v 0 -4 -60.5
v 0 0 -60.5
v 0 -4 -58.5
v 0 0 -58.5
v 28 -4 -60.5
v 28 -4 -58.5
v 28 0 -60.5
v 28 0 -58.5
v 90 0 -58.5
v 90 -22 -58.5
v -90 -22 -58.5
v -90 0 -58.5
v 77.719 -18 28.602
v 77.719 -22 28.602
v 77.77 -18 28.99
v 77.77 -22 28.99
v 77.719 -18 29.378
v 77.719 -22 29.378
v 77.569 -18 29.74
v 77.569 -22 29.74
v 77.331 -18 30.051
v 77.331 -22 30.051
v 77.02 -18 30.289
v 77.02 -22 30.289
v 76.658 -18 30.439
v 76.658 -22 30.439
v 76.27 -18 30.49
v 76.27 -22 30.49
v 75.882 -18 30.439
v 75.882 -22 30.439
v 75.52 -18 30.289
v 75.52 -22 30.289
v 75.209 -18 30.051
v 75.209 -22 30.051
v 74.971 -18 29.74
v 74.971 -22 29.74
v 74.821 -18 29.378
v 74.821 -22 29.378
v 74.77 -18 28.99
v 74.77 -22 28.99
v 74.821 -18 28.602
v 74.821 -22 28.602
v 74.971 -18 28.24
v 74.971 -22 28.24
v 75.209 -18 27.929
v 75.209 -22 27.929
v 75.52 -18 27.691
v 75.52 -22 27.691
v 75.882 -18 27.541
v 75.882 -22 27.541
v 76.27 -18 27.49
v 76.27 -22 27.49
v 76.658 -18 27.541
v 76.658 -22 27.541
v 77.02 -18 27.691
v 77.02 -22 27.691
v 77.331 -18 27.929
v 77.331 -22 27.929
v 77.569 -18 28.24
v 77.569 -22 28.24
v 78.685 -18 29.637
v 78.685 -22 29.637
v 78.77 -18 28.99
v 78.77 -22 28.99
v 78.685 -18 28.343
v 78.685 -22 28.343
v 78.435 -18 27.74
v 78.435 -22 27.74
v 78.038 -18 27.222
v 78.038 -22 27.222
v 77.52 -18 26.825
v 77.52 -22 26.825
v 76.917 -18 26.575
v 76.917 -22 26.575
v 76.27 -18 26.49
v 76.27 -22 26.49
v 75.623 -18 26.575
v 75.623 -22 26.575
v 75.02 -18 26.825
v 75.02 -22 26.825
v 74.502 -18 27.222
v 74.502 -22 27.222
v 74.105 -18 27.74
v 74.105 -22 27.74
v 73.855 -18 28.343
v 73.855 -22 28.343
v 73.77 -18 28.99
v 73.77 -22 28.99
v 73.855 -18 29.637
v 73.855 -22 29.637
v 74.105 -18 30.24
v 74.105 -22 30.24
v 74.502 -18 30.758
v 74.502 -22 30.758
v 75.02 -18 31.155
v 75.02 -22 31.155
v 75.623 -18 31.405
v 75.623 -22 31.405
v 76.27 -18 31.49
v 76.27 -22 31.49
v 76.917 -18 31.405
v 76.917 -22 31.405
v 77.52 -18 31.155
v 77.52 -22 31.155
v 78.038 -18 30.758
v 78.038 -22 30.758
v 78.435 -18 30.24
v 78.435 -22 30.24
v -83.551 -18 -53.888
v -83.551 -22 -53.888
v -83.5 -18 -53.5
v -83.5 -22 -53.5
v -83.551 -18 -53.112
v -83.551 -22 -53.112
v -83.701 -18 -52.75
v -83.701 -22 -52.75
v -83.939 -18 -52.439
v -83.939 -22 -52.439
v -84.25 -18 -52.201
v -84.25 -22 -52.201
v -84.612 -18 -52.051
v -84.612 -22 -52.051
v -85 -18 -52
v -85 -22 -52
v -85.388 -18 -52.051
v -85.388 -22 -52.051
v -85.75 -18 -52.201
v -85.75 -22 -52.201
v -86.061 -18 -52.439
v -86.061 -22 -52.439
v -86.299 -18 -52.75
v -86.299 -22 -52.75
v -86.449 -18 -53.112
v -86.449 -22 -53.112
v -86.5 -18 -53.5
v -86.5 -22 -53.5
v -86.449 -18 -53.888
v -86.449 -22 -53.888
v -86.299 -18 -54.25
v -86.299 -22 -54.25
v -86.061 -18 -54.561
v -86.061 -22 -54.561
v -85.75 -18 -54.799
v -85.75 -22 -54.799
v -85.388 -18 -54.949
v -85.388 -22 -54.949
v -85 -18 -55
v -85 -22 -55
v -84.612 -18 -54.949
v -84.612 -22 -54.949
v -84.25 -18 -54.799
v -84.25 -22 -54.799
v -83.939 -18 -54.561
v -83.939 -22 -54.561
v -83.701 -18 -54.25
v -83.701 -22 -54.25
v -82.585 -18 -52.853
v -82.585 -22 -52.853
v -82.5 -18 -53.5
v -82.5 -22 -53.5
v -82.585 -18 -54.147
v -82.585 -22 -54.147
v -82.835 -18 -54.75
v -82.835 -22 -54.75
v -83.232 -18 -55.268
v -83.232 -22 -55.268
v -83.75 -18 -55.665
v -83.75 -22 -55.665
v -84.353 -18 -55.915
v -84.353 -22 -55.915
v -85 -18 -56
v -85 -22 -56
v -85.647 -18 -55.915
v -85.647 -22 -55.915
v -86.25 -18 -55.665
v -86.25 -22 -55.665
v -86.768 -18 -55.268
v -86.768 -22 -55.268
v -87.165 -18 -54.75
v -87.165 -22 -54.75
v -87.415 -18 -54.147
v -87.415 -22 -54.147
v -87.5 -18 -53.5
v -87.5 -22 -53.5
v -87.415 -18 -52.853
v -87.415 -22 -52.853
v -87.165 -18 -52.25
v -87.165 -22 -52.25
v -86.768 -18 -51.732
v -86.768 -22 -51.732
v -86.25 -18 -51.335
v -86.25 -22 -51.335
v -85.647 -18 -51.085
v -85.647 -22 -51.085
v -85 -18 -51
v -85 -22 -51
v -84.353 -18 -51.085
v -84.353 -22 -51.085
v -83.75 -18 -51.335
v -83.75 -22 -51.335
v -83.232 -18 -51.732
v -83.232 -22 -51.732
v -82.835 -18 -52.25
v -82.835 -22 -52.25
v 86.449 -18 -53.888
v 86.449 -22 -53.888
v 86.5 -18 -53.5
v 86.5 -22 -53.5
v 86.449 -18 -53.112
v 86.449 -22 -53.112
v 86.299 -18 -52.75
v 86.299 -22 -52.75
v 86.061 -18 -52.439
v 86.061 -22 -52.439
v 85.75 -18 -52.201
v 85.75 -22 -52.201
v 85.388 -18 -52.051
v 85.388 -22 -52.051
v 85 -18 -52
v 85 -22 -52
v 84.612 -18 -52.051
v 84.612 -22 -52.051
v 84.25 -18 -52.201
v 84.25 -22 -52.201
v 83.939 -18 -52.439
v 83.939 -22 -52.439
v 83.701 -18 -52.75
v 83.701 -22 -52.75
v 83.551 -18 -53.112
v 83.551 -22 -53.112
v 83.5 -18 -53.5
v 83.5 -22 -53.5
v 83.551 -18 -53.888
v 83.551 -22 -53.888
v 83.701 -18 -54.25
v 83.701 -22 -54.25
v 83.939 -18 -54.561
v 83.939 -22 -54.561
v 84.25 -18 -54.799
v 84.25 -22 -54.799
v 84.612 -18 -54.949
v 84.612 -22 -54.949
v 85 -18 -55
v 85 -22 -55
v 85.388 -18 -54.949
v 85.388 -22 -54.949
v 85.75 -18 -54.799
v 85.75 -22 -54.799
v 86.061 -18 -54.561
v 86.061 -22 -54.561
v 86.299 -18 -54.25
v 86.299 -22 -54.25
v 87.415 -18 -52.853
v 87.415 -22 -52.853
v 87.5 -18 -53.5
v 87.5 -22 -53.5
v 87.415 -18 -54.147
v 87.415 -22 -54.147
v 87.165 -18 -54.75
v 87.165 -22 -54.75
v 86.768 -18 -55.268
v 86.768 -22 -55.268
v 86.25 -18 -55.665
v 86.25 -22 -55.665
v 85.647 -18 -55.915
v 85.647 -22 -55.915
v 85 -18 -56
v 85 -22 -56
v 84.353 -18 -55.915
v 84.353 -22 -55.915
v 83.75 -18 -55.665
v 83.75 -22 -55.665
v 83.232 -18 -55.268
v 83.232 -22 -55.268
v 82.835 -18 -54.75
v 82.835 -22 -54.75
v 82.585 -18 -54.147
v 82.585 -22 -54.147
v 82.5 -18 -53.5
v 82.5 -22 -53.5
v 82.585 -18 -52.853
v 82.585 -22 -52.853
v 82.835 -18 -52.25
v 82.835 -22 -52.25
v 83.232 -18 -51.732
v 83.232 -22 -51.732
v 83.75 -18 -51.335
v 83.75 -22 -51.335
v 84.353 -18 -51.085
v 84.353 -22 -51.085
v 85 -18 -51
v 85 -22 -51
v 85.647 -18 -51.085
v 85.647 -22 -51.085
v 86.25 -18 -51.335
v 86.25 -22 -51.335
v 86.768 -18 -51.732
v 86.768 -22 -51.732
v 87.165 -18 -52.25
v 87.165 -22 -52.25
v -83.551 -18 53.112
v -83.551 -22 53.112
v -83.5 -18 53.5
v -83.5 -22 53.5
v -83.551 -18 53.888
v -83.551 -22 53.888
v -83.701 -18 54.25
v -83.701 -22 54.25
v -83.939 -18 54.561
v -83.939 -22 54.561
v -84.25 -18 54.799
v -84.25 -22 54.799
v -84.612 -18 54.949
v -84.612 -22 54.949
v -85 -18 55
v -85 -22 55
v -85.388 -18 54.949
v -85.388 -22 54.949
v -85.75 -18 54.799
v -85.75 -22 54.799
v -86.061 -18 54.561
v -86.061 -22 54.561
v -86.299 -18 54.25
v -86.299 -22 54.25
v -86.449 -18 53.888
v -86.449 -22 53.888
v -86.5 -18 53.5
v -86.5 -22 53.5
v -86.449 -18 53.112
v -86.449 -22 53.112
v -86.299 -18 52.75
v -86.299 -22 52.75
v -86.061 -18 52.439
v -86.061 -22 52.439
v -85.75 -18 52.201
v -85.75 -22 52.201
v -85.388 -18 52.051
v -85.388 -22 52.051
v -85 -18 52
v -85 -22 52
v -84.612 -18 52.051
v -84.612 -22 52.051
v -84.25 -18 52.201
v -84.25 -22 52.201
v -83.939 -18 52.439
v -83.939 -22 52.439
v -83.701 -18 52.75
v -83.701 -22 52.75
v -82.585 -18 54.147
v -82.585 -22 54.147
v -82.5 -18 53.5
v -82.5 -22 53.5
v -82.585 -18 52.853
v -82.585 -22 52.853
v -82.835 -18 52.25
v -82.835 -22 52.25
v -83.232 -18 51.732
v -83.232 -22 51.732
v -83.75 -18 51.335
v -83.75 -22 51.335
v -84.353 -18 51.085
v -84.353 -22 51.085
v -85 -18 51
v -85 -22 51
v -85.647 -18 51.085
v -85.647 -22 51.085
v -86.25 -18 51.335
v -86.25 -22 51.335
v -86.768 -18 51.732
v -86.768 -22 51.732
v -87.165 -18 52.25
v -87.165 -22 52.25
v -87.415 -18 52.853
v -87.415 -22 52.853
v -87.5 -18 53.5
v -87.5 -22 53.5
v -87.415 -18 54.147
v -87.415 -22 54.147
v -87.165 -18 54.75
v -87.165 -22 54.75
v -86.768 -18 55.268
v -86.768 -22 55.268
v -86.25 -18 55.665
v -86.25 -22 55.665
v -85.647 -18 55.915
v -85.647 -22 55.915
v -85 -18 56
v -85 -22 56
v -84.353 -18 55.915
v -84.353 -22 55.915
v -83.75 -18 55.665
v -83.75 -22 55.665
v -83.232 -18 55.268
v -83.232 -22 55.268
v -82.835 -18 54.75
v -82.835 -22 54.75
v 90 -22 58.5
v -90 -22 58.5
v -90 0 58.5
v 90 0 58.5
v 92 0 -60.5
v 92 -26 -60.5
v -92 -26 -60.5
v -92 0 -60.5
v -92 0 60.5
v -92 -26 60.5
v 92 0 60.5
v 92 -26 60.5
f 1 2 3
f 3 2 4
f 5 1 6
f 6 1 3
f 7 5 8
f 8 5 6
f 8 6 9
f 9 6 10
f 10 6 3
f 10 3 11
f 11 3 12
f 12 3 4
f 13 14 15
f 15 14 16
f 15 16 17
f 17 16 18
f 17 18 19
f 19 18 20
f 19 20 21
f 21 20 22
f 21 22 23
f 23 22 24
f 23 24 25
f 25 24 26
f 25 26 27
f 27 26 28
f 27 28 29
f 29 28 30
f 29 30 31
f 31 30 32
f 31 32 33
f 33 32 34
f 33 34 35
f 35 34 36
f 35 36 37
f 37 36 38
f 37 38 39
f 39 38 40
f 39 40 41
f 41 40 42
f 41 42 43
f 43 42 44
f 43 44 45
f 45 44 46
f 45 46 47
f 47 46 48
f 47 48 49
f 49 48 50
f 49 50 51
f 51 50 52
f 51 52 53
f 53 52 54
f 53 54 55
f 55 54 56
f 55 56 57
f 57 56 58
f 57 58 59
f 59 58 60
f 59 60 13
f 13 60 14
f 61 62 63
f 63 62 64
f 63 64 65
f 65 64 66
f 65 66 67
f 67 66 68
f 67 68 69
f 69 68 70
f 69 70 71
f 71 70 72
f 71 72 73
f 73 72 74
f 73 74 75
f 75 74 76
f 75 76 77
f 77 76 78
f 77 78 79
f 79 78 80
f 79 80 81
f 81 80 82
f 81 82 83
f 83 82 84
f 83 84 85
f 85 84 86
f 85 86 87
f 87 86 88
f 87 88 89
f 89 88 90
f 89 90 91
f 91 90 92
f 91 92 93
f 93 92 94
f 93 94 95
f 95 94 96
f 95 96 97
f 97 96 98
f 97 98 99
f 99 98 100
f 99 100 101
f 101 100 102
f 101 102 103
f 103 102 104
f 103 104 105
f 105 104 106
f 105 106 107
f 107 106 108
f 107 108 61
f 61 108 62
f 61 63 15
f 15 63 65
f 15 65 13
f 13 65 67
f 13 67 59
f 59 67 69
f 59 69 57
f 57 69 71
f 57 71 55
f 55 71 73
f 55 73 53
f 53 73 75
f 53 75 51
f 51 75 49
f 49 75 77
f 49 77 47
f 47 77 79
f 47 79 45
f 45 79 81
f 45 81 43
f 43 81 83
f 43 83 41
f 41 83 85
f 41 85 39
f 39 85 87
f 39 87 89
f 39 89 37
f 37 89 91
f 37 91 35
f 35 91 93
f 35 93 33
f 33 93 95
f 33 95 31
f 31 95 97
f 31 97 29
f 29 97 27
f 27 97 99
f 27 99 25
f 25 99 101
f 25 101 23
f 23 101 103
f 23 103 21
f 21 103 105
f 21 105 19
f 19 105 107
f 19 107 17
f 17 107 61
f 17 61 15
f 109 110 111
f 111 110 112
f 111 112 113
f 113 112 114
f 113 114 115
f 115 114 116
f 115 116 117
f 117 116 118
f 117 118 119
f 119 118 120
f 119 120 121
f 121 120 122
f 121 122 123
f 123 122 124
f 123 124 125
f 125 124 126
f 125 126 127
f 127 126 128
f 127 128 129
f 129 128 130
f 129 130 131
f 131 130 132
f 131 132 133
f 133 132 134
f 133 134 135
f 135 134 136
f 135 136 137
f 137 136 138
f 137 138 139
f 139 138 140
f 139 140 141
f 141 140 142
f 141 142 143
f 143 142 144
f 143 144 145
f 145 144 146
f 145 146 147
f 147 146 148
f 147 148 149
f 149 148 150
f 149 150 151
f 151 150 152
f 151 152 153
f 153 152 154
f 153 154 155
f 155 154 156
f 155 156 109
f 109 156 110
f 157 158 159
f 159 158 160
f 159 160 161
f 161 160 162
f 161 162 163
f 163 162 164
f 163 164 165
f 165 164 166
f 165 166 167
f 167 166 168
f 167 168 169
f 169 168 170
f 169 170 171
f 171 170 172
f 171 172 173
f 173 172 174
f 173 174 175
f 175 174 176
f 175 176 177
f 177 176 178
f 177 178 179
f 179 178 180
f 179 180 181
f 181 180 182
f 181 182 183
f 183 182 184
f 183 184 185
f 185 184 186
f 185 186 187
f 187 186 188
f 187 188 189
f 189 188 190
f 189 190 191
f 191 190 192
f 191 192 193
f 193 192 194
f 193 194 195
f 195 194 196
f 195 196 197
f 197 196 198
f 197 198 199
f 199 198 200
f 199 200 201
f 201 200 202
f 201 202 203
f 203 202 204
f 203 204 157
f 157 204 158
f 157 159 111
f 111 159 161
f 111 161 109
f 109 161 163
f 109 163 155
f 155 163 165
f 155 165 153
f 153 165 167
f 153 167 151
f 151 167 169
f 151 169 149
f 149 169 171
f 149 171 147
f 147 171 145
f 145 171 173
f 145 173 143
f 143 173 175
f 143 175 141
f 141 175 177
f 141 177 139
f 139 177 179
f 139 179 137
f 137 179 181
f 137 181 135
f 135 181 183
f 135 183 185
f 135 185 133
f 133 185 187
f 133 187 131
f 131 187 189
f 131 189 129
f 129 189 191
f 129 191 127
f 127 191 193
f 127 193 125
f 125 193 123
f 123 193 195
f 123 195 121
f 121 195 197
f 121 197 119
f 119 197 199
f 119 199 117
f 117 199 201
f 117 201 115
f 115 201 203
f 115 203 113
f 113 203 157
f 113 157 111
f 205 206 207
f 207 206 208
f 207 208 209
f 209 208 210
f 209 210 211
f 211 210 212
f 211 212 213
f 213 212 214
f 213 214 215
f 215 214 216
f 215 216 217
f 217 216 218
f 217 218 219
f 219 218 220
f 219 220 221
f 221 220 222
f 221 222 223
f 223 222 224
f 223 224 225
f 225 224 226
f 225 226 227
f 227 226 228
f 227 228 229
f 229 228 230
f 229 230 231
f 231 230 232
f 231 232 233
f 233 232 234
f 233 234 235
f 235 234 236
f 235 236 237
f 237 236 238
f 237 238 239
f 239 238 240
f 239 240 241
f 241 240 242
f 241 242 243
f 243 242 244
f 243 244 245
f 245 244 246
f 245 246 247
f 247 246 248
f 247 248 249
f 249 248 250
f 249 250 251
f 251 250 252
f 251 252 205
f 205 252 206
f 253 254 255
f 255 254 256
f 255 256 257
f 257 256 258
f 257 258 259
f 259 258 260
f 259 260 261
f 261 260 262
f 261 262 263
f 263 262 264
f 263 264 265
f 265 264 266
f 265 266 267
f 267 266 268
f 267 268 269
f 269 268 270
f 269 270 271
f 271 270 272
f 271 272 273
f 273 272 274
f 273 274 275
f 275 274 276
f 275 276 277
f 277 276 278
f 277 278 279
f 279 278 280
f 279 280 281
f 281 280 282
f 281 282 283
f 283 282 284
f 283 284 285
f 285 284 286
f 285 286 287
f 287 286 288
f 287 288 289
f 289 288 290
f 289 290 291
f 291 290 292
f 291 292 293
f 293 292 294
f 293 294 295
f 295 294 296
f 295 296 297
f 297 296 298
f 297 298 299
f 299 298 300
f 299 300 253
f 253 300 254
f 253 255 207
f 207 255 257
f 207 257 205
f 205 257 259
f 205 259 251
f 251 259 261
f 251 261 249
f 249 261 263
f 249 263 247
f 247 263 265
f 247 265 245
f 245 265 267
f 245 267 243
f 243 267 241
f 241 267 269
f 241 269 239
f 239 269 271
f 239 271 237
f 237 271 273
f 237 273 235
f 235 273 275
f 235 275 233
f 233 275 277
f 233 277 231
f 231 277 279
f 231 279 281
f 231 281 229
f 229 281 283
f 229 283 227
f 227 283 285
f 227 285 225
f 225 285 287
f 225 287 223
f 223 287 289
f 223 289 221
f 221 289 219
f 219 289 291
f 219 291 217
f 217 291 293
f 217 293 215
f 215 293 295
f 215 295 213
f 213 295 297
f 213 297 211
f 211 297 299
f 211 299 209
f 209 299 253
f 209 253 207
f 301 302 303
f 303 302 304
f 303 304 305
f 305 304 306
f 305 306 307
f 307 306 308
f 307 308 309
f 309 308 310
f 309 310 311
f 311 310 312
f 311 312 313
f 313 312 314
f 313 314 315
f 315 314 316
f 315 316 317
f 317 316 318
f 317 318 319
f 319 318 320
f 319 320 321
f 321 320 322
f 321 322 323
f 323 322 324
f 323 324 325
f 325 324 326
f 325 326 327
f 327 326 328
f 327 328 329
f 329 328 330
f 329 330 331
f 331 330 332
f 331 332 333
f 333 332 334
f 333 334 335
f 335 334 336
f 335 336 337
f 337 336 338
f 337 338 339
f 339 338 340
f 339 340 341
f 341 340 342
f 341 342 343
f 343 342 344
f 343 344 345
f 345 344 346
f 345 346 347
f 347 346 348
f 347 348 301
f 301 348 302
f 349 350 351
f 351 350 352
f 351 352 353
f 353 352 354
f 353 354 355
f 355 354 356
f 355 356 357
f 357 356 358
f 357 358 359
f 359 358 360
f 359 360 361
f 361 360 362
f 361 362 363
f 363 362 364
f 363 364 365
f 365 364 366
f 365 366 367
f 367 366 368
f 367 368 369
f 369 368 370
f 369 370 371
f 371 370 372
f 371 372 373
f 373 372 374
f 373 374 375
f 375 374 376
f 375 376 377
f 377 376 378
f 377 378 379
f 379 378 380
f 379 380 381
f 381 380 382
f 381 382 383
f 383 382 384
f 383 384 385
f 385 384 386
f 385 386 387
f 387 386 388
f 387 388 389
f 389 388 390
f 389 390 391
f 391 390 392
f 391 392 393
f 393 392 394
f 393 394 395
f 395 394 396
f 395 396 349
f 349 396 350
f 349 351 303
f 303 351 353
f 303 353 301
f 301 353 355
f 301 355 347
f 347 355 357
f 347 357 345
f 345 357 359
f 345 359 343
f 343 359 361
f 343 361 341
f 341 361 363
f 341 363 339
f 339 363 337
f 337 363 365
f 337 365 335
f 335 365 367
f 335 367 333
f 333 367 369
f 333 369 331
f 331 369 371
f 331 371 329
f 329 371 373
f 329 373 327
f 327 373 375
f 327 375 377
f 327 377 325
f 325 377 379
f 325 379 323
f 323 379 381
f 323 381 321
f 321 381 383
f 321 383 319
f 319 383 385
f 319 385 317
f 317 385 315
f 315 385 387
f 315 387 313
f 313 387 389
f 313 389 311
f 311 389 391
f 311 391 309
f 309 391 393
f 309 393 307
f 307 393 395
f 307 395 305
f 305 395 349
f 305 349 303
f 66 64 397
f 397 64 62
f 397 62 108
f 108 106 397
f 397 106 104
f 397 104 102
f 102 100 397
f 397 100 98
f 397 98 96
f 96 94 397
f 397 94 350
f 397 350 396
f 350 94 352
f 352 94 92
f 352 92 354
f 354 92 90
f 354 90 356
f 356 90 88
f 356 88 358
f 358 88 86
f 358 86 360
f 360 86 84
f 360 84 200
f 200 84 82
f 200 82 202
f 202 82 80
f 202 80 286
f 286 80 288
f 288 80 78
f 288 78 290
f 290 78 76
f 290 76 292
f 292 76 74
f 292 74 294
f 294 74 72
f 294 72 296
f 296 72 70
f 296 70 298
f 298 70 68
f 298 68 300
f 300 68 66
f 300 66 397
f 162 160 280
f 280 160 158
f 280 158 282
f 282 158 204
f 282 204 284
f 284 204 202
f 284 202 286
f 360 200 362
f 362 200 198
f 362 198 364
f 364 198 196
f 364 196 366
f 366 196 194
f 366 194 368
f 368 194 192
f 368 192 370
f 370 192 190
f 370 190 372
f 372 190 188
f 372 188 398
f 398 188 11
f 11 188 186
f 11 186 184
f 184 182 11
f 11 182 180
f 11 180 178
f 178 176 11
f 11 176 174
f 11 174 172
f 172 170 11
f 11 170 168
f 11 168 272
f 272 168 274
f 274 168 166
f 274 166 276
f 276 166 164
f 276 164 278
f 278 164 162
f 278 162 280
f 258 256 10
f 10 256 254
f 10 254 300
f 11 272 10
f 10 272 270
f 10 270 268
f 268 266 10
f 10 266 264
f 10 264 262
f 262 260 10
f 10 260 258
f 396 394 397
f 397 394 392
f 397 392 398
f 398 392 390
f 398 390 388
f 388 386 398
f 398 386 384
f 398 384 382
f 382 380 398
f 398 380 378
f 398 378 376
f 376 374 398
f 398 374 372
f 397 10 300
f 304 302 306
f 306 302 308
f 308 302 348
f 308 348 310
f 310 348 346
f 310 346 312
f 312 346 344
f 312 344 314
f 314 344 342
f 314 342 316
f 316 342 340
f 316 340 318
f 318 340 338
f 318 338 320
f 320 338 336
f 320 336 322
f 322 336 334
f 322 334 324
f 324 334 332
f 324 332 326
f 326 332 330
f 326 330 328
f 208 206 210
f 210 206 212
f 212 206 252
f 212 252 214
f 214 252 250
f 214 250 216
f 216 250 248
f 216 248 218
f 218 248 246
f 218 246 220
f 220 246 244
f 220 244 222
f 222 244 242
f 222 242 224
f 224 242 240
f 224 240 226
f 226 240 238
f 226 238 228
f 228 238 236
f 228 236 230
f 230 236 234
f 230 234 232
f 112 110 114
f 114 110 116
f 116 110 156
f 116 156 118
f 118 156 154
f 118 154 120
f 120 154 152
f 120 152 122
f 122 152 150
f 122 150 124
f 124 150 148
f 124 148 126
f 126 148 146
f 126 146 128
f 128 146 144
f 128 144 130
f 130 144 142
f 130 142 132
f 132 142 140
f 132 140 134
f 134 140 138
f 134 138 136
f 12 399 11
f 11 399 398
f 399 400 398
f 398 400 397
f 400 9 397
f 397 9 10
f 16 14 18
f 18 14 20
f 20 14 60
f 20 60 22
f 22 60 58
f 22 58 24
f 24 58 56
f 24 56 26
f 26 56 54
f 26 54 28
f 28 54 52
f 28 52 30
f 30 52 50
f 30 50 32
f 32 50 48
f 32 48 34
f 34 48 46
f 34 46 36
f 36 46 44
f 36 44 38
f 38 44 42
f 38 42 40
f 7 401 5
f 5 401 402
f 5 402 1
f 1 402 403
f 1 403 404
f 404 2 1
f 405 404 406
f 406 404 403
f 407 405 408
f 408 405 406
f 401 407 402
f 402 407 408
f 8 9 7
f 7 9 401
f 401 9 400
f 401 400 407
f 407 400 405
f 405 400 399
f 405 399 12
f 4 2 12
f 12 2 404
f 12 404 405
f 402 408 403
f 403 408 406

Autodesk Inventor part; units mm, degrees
ref_plane "YZ Plane" through (0, 0, 0) normal (1, 0, 0) x (0, 1, 0)
ref_plane "XZ Plane" through (0, 0, 0) normal (0, 1, 0) x (-1, 0, 0)
ref_plane "XY Plane" through (0, 0, 0) normal (0, 0, 1) x (1, 0, 0)
sketch "Base" plane through (0, 0, 0) normal (0, 1, 0) x (-1, 0, 0)
  line L0 (92, 60.5) -> (-92, 60.5)
  line L1 (-92, 60.5) -> (-92, -60.5)
  line L2 (-92, -60.5) -> (92, -60.5)
  line L3 (92, -60.5) -> (92, 60.5)
  line L4 (92, 60.5) -> (-92, -60.5) construction
  line L5 (-92, 60.5) -> (92, -60.5) construction
  point P0 (0, 0)
  dimension "d0" = 184
  dimension "d1" = 121
extrude "Extrusão1" add sketch "Base" against normal blind 26
sketch "Esboço2" plane through (0, 0, 0) normal (0, 1, 0) x (1, 0, 0)
  line L0 (-90, -58.5) -> (90, -58.5)
  line L1 (90, -58.5) -> (90, 58.5)
  line L2 (90, 58.5) -> (-90, 58.5)
  line L3 (-90, 58.5) -> (-90, -58.5)
  line L4 (-90, -58.5) -> (90, 58.5) construction
  line L5 (90, -58.5) -> (-90, 58.5) construction
  point P0 (0, 0)
  dimension "d4" = 180
  dimension "d5" = 117
extrude "Extrusão2" cut sketch "Esboço2" against normal blind 22
sketch "Esboço3" plane through (0, -22, 0) normal (0, 1, 0) x (1, 0, 0)
  circle A0 centre (-85, -53.5) radius 2.5
  line L0 (-92, 60.5) -> (-92, -60.5) projected
  line L1 (-92, -60.5) -> (92, -60.5) projected
  circle A1 centre (-85, -53.5) radius 1.5
  line L2 (-90, -58.5) -> (-90, 58.5) projected
  line L3 (90, 58.5) -> (90, -58.5) projected
  circle A2 centre (-85, 53.5) radius 2.5
  circle A3 centre (-85, 53.5) radius 1.5
  line L4 (-90, 58.5) -> (90, 58.5) projected
  line L5 (90, -58.5) -> (-90, -58.5) projected
  circle A4 centre (85, 53.5) radius 1.5
  circle A5 centre (85, 53.5) radius 2.5
  line L6 (92, -60.5) -> (92, 60.5) projected
  line L7 (92, 60.5) -> (-92, 60.5) projected
  circle A6 centre (76.27, -28.99) radius 2.5
  circle A7 centre (76.27, -28.99) radius 1.5
  point P0 (0, 0)
  dimension "d8" = 5
  dimension "d9" = 7
  dimension "d10" = 7
  dimension "d11" = 3
  dimension "d12" = 7
  dimension "d13" = 7
  dimension "d14" = 5
  dimension "d15" = 31.51
  dimension "d16" = 15.73
  dimension "d17" = 3
extrude "Extrusão3" add sketch "Esboço3" along normal blind 4 contours A0 | A2 | A5 | A6
sketch "Esboço4" plane through (92, 0, -60.5) normal (0, 0, -1) x (-1, 0, 0)
  line L0 (92, 0) -> (64, 0)
  line L1 (64, 0) -> (64, -4)
  line L2 (64, -4) -> (92, -4)
  line L3 (92, -4) -> (92, 0)
  line L4 (92, 0) -> (64, -4) construction
  line L5 (64, 0) -> (92, -4) construction
  line L6 (184, 0) -> (184, -26) projected
  line L7 (0, 0) -> (184, 0) projected
  line L8 (184, -26) -> (0, -26) projected
  point P0 (92, 0)
  point P1 (78, -2)
  point P2 (64, -2)
  dimension "d20" = 120
  dimension "d21" = 28
  dimension "d22" = 0
  dimension "d24" = 4
extrude "Extrusão4" cut sketch "Esboço4" along normal blind 4 and the other way blind 2
properties part number "base_traseira_3DPrint"
